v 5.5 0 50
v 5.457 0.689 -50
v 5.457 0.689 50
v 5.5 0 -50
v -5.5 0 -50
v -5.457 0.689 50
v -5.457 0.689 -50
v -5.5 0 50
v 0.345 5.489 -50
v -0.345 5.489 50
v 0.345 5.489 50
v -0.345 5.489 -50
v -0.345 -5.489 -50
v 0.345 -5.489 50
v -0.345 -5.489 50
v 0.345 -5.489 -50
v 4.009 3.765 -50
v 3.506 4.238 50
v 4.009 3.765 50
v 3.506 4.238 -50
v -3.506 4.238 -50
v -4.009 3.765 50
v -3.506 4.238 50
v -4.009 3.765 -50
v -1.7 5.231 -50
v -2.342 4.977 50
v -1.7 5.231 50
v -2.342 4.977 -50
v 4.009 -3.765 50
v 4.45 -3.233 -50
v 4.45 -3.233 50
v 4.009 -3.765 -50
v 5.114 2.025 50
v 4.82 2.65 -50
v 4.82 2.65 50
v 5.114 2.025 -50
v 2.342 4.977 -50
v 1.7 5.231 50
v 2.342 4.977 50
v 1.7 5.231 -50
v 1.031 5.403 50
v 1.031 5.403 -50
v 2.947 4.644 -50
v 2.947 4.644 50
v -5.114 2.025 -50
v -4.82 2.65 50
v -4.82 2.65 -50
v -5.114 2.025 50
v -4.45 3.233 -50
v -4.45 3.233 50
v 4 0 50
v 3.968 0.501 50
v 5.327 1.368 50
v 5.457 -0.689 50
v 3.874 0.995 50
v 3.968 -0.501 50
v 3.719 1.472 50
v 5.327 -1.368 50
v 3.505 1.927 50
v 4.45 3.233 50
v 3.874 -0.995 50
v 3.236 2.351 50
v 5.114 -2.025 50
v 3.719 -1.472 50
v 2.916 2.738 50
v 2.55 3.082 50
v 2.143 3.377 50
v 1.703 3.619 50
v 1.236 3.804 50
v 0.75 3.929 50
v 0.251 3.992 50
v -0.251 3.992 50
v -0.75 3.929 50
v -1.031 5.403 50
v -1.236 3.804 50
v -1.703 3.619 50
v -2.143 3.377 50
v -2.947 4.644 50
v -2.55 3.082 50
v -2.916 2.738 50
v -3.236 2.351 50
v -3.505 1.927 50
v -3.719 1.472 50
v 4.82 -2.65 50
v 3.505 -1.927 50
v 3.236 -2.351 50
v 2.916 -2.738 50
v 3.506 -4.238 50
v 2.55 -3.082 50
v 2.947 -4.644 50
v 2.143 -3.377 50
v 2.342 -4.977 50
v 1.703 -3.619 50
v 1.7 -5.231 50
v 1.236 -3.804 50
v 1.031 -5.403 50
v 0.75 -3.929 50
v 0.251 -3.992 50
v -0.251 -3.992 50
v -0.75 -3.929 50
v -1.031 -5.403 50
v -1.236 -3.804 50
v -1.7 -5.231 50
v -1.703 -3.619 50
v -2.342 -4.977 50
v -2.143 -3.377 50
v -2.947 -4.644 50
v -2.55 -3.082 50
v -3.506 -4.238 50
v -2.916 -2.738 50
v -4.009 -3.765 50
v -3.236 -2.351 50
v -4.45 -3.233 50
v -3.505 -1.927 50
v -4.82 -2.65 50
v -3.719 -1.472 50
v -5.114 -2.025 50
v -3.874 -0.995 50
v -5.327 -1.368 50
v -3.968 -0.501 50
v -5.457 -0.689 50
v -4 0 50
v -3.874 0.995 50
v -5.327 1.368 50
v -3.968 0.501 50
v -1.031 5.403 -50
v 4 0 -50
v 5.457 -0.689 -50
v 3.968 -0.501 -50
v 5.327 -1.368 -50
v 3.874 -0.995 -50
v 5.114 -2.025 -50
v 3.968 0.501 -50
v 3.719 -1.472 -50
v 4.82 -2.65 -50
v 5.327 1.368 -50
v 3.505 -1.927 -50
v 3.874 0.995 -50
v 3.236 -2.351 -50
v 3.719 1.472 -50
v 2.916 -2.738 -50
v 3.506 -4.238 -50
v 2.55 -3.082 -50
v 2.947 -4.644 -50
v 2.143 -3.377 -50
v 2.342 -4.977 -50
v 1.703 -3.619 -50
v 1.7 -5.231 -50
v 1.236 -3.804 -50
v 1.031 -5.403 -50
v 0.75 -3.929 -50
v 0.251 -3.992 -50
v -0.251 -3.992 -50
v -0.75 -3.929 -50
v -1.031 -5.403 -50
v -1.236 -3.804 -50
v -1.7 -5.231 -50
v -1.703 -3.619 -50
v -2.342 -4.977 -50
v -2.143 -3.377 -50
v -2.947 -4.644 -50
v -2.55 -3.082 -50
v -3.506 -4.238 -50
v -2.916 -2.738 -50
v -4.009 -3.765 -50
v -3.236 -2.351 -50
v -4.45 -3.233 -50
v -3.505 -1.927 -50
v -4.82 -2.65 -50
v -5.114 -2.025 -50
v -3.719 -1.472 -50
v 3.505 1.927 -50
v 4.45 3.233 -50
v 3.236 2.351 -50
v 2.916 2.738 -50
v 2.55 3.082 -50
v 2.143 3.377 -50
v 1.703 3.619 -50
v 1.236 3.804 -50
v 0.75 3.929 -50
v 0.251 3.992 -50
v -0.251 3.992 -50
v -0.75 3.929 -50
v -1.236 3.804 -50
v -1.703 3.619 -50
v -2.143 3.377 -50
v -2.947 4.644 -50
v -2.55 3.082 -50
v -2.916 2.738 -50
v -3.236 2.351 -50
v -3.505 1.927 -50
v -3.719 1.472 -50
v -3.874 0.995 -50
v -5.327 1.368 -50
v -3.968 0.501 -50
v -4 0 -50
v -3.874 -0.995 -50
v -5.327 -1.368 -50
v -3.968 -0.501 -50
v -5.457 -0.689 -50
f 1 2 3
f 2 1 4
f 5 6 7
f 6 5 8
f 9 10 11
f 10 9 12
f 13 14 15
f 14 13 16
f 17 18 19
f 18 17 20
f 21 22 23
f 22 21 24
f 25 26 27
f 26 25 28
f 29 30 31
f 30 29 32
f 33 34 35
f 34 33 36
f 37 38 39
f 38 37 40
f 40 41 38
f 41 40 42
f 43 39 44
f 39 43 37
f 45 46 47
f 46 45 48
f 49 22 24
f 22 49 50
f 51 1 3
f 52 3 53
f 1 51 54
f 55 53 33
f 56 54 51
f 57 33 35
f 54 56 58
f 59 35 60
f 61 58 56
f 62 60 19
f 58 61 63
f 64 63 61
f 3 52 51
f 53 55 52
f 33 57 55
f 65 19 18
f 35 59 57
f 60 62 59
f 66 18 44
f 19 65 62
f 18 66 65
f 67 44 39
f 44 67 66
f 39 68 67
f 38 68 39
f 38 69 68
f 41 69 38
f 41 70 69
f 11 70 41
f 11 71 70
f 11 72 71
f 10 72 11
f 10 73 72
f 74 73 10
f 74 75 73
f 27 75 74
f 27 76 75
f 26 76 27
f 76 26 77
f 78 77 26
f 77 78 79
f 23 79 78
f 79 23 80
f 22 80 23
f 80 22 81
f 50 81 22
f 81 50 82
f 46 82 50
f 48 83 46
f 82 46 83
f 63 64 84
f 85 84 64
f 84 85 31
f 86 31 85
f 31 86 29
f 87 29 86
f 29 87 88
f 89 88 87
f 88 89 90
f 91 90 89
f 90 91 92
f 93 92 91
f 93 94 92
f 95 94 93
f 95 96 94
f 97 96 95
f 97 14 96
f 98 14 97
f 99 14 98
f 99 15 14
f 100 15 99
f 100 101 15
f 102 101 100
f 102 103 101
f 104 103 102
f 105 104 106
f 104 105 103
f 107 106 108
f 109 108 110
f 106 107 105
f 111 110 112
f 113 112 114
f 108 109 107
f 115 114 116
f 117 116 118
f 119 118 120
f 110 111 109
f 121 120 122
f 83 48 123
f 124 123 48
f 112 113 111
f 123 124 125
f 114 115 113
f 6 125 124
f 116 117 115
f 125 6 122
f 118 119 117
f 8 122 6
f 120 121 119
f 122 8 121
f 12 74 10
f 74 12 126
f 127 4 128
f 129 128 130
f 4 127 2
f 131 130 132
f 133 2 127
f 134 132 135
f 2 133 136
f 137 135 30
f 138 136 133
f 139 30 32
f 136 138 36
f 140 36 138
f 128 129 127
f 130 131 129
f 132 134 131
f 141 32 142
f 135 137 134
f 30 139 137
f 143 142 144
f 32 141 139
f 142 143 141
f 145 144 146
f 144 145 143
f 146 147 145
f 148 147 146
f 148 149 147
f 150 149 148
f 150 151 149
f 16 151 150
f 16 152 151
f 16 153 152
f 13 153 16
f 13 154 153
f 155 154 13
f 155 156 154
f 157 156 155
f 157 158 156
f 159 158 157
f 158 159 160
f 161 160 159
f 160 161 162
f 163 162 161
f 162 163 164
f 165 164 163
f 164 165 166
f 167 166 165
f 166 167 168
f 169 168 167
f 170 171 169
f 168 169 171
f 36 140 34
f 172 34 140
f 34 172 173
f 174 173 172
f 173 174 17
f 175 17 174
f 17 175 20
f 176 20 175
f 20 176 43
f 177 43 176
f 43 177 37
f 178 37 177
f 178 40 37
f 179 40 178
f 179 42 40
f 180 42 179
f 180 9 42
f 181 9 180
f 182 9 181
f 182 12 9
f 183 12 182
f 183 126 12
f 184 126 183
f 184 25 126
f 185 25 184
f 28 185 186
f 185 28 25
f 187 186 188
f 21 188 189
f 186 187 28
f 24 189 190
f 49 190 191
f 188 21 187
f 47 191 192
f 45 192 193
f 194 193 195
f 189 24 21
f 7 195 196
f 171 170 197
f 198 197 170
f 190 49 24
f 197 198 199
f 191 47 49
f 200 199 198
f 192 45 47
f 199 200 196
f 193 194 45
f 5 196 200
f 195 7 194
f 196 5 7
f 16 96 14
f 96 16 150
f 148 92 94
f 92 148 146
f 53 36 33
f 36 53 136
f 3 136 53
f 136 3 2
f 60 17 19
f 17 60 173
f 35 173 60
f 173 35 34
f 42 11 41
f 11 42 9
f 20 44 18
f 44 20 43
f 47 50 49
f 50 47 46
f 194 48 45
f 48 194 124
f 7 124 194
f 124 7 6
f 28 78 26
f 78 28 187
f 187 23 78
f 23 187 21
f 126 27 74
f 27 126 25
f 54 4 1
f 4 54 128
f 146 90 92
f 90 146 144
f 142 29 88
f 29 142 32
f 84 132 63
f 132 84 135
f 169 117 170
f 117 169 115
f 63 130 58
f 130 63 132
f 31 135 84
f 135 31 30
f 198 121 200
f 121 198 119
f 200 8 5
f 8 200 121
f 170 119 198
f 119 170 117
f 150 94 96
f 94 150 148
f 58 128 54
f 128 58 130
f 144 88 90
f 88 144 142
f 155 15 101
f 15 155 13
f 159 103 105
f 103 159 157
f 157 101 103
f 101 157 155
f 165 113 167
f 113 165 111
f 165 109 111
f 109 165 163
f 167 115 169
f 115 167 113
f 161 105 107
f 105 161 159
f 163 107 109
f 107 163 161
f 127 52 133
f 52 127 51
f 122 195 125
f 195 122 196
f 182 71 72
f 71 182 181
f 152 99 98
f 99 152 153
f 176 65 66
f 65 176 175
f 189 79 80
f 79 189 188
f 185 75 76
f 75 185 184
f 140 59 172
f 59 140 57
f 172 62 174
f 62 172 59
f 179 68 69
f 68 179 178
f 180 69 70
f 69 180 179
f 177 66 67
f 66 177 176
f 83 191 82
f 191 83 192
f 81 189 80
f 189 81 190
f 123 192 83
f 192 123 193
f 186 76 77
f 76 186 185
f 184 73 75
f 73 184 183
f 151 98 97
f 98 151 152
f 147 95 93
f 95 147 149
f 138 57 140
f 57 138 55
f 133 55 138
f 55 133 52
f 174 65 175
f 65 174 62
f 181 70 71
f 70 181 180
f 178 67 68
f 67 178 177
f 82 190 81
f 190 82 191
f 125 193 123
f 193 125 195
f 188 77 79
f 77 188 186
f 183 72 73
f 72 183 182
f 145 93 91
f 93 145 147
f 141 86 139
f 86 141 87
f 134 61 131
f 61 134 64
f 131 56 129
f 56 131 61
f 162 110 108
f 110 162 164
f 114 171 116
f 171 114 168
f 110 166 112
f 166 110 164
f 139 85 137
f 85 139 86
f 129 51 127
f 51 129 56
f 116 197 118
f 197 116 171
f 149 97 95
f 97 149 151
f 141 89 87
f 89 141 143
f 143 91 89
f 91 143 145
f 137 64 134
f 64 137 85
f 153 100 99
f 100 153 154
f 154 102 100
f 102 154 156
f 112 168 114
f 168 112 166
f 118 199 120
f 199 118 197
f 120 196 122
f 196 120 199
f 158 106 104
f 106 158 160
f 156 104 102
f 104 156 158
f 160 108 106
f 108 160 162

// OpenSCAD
$fn = 50;


difference() {
	union() {
		translate(v = [0, 0, -50.0000000000]) {
			cylinder(h = 100, r = 5.5000000000);
		}
	}
	union() {
		translate(v = [0, 0, -100.0000000000]) {
			cylinder(h = 200, r = 4);
		}
	}
}
